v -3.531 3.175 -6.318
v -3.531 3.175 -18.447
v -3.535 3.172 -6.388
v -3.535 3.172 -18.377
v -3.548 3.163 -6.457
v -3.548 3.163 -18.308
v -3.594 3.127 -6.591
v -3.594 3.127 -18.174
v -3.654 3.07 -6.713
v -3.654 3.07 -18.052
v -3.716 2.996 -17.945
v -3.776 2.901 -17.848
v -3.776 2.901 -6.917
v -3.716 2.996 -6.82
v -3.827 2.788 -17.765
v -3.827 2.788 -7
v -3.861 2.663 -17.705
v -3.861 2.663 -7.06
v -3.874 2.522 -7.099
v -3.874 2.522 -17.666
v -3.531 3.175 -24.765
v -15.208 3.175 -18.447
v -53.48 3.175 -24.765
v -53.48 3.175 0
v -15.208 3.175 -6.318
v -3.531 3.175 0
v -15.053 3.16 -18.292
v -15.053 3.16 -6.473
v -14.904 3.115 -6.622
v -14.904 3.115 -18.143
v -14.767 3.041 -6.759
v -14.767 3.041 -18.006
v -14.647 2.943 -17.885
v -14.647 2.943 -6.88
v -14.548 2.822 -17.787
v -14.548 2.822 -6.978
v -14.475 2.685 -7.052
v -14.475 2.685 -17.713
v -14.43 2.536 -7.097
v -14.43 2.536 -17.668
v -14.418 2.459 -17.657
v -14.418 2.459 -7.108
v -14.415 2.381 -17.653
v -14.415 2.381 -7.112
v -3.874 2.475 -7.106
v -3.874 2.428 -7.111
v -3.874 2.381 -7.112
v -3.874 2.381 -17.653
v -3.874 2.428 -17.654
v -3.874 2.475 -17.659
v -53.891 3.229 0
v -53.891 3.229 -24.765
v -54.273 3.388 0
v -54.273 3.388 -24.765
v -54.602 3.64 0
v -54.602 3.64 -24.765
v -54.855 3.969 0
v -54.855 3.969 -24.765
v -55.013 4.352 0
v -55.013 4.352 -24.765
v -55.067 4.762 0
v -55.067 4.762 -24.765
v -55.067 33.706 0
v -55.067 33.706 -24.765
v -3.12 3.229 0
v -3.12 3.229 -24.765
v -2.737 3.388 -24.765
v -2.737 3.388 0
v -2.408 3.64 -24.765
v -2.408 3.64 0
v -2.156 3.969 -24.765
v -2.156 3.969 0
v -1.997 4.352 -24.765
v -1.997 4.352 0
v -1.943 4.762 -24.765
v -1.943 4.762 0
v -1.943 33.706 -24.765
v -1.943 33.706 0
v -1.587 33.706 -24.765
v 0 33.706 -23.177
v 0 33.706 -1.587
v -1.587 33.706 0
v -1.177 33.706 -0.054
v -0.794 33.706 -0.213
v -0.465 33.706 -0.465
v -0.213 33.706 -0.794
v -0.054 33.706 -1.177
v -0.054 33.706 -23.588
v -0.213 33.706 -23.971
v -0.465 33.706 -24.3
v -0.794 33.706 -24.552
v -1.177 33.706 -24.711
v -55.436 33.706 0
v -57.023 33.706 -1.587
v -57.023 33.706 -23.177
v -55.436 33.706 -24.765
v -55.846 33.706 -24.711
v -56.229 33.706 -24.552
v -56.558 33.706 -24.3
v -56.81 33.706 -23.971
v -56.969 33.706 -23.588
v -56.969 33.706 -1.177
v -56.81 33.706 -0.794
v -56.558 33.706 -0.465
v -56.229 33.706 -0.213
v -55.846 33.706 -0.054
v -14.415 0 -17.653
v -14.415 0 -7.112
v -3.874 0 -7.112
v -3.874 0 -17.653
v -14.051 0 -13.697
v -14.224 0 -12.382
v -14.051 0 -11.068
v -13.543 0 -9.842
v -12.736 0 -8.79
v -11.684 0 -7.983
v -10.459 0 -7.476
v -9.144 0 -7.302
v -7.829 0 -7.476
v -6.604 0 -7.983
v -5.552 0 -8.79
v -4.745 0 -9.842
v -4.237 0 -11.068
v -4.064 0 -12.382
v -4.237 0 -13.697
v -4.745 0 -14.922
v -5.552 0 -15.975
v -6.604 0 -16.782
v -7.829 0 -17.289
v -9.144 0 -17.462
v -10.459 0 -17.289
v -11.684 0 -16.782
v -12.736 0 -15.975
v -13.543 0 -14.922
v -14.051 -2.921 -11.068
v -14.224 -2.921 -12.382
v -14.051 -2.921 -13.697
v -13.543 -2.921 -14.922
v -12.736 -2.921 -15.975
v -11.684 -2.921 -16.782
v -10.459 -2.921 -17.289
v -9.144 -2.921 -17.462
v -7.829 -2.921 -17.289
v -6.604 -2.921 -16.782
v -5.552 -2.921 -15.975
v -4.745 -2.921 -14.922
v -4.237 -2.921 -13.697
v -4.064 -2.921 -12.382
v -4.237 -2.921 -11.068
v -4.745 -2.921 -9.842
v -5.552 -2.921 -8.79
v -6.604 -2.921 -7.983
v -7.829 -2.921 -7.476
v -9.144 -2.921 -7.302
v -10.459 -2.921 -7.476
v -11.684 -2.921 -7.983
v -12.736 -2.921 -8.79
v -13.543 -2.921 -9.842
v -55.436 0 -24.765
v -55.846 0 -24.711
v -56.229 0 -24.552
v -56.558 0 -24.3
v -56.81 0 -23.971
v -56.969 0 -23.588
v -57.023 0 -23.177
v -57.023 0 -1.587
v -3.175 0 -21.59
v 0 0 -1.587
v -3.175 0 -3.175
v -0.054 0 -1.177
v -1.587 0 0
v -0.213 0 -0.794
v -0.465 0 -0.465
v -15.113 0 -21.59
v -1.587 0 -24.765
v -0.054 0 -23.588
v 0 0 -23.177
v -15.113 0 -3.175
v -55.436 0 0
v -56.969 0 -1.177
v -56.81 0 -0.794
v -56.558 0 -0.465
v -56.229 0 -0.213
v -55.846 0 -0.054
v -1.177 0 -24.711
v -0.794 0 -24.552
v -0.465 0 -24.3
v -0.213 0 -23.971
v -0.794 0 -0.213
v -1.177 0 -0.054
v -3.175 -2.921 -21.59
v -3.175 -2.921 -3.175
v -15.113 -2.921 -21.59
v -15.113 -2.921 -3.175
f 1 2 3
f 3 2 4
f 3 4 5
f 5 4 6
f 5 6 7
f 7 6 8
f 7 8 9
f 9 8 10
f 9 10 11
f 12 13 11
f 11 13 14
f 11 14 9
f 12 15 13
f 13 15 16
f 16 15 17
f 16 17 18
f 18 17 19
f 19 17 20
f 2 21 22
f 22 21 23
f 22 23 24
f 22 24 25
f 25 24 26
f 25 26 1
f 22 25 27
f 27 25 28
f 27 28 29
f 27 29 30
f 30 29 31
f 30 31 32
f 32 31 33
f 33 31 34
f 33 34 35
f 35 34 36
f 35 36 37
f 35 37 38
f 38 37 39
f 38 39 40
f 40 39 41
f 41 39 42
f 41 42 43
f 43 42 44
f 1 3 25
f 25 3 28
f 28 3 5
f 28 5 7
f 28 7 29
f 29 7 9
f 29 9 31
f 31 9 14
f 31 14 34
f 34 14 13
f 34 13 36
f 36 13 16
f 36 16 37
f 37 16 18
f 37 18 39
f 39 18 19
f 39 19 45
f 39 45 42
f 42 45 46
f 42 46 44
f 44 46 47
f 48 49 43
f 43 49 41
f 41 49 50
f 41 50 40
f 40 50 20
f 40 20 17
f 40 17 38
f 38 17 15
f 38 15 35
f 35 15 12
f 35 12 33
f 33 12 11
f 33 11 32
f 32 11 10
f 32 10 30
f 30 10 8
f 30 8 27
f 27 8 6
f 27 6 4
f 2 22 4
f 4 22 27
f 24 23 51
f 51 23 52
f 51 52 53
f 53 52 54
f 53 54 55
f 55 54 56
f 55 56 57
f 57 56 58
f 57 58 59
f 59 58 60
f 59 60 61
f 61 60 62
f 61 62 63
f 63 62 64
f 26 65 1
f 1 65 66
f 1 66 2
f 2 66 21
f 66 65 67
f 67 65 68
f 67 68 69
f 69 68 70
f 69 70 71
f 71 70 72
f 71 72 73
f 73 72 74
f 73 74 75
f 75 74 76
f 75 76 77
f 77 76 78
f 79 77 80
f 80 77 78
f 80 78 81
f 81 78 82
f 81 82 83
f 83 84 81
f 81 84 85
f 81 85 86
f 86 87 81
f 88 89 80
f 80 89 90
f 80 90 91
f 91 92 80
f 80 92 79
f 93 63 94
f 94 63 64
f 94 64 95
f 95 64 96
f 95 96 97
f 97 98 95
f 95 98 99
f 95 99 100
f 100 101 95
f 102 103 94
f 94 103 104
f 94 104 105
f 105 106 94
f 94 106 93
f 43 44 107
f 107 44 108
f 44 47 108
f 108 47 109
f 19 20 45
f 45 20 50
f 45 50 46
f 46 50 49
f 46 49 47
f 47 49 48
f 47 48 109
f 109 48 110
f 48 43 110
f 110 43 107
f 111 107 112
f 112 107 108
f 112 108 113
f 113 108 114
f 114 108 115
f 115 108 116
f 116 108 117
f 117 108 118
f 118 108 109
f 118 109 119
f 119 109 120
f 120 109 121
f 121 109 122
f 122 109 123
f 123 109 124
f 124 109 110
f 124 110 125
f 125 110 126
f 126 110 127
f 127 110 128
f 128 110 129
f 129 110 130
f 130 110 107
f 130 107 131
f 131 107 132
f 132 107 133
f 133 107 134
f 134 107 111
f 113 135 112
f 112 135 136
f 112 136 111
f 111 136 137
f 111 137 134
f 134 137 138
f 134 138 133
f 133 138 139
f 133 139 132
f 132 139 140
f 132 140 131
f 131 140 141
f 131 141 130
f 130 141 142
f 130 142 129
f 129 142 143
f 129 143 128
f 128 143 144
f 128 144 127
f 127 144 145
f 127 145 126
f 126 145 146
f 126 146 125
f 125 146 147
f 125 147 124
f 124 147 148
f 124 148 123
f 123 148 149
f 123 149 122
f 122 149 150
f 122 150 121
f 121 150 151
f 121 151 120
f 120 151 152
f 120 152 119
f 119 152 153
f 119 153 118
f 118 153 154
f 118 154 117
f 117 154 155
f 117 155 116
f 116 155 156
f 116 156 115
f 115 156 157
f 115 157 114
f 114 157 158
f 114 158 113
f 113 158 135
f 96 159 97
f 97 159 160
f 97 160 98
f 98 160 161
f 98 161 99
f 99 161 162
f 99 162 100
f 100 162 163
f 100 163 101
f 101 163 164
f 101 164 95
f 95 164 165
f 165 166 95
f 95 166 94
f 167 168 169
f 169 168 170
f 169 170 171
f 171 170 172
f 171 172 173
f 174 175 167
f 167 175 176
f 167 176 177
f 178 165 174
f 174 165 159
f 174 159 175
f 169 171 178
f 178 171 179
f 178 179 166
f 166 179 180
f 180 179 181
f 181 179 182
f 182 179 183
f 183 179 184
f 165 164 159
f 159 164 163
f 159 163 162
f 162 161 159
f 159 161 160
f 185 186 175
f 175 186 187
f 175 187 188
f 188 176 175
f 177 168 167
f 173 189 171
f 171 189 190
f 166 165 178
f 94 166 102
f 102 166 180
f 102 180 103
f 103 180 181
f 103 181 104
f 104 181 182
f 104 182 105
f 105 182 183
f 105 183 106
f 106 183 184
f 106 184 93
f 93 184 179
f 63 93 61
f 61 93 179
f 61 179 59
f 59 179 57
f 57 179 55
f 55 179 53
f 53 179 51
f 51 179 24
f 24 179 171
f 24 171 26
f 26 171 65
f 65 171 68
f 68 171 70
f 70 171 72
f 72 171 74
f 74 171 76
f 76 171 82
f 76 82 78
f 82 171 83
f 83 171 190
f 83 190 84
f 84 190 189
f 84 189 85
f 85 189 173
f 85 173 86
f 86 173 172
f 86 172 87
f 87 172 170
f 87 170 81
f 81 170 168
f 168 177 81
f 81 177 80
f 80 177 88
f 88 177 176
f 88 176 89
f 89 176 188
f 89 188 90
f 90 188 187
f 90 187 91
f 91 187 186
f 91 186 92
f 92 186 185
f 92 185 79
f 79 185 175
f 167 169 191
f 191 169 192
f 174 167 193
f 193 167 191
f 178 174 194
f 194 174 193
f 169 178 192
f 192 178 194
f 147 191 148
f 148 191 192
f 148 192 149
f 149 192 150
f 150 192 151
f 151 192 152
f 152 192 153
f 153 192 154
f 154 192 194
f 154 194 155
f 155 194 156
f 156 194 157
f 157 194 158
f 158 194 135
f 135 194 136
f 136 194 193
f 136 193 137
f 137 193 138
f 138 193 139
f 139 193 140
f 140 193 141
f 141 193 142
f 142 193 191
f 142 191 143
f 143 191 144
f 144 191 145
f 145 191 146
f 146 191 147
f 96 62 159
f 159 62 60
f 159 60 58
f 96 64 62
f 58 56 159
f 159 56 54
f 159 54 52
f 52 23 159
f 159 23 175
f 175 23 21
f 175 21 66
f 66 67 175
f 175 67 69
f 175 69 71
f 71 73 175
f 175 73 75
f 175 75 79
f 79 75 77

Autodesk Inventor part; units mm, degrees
ref_plane "YZ Plane" through (0, 0, 0) normal (1, 0, 0) x (0, 1, 0)
ref_plane "XZ Plane" through (0, 0, 0) normal (0, 1, 0) x (-1, 0, 0)
ref_plane "XY Plane" through (0, 0, 0) normal (0, 0, 1) x (1, 0, 0)
sketch "Sketch1" plane through (0, 0, 0) normal (0, 1, 0) x (-1, 0, 0)
  line L0 (0, 0) -> (57.023, 0)
  line L1 (57.023, 0) -> (57.023, -24.765)
  line L2 (57.023, -24.765) -> (0, -24.765)
  line L3 (0, -24.765) -> (0, 0)
  dimension "d0" = 57.023
  dimension "d1" = 24.765
extrude "Extrusion1" add sketch "Sketch1" along normal blind 3.175
sketch "Sketch3" plane through (0, 0, 0) normal (0, -1, 0) x (1, 0, 0)
  line L0 (-3.175, -3.175) -> (-15.113, -3.175)
  line L1 (-15.113, -3.175) -> (-15.113, -21.59)
  line L2 (-15.113, -21.59) -> (-3.175, -21.59)
  line L3 (-3.175, -21.59) -> (-3.175, -3.175)
  line L4 (0, -24.765) -> (0, 0) projected
  line L5 (-57.023, 0) -> (0, 0) projected
  dimension "d18" = 18.415
  dimension "d19" = 11.938
  dimension "d20" = 3.175
  dimension "d21" = 3.175
extrude "Extrusion3" add sketch "Sketch3" along normal blind 2.921
fillet "Fillet2" radius 1.5875 4 edges at (0, 1.5875, -24.765) (0, 1.5875, 0) (-57.023, 1.5875, 0) (-57.023, 1.5875, -24.765)
hole "Hole2" at (-9.144, -2.921, -12.3825) direction (0, 1, 0) diameter 10.16 depth 25.4
sketch "Sketch4" plane through (0, 3.175, 0) normal (0, 1, 0) x (1, 0, 0)
  line L0 (-3.8735, 17.653) -> (-14.4145, 17.653)
  line L1 (-14.4145, 17.653) -> (-14.4145, 7.112)
  line L2 (-14.4145, 7.112) -> (-3.8735, 7.112)
  line L3 (-3.8735, 7.112) -> (-3.8735, 17.653)
  line L4 (-1.5875, 24.765) -> (-55.4355, 24.765) projected
  line L5 (0, 1.5875) -> (0, 23.1775) projected
  point P0 (0, 0)
  dimension "d34" = 10.541
  dimension "d35" = 10.541
  dimension "d36" = 7.112
  dimension "d37" = 3.8735
extrude "Extrusion4" cut sketch "Sketch4" against normal blind 3.175
sketch "Sketch5" plane through (0, 3.175, 0) normal (0, 1, 0) x (1, 0, 0)
  line L0 (0, 1.5875) -> (0, 23.1775) projected
  line L1 (-1.9431, 1.5875) -> (-1.9431, 23.1775)
  line L2 (-55.4355, 24.765) -> (-1.5875, 24.765) projected
  line L3 (-1.5875, 0) -> (-1.9431, 0)
  line L4 (-1.9431, 0) -> (-1.9431, 24.765)
  line L5 (-1.9431, 24.765) -> (-1.5875, 24.765)
  line L6 (0, 23.1775) -> (0, 1.5875)
  arc A0 (0, 23.1775) -> (-1.5875, 24.765) centre (-1.5875, 23.1775) ccw
  arc A1 (-1.5875, 0) -> (0, 1.5875) centre (-1.5875, 1.5875) ccw
  line L7 (-57.023, 23.1775) -> (-57.023, 1.5875) projected
  line L8 (-55.0672, 23.1775) -> (-55.0672, 1.5875)
  line L9 (-1.5875, 0) -> (-55.4355, 0) projected
  line L10 (-55.0672, 0) -> (-55.4355, 0)
  line L11 (-57.023, 1.5875) -> (-57.023, 23.1775)
  line L12 (-55.4355, 24.765) -> (-55.0672, 24.765)
  line L13 (-55.0672, 24.765) -> (-55.0672, 0)
  arc A2 (-57.023, 1.5875) -> (-55.4355, 0) centre (-55.4355, 1.5875) ccw
  arc A3 (-55.4355, 24.765) -> (-57.023, 23.1775) centre (-55.4355, 23.1775) ccw
  point P0 (0, 0)
  dimension "d40" = 1.9431
  dimension "d41" = 1.5875
  dimension "d42" = 1.9558
  dimension "d43" = 1.5875
extrude "Extrusion5" add sketch "Sketch5" along normal blind 30.5308 contours A1 L3 L4 L1 L2 A0 L0 | L9 A2 L7 A3 L2 L13 L8
fillet "Fillet3" radius 1.5875 2 edges at (-1.9431, 3.175, -12.3825) (-55.0672, 3.175, -12.3825)
fillet "Fillet4" radius 0.7937 4 edges at (-9.144, 3.175, -7.112) (-14.4145, 3.175, -12.3825) (-3.8735, 3.175, -12.3825) (-9.144, 3.175, -17.653)
properties part number "switch mount"
